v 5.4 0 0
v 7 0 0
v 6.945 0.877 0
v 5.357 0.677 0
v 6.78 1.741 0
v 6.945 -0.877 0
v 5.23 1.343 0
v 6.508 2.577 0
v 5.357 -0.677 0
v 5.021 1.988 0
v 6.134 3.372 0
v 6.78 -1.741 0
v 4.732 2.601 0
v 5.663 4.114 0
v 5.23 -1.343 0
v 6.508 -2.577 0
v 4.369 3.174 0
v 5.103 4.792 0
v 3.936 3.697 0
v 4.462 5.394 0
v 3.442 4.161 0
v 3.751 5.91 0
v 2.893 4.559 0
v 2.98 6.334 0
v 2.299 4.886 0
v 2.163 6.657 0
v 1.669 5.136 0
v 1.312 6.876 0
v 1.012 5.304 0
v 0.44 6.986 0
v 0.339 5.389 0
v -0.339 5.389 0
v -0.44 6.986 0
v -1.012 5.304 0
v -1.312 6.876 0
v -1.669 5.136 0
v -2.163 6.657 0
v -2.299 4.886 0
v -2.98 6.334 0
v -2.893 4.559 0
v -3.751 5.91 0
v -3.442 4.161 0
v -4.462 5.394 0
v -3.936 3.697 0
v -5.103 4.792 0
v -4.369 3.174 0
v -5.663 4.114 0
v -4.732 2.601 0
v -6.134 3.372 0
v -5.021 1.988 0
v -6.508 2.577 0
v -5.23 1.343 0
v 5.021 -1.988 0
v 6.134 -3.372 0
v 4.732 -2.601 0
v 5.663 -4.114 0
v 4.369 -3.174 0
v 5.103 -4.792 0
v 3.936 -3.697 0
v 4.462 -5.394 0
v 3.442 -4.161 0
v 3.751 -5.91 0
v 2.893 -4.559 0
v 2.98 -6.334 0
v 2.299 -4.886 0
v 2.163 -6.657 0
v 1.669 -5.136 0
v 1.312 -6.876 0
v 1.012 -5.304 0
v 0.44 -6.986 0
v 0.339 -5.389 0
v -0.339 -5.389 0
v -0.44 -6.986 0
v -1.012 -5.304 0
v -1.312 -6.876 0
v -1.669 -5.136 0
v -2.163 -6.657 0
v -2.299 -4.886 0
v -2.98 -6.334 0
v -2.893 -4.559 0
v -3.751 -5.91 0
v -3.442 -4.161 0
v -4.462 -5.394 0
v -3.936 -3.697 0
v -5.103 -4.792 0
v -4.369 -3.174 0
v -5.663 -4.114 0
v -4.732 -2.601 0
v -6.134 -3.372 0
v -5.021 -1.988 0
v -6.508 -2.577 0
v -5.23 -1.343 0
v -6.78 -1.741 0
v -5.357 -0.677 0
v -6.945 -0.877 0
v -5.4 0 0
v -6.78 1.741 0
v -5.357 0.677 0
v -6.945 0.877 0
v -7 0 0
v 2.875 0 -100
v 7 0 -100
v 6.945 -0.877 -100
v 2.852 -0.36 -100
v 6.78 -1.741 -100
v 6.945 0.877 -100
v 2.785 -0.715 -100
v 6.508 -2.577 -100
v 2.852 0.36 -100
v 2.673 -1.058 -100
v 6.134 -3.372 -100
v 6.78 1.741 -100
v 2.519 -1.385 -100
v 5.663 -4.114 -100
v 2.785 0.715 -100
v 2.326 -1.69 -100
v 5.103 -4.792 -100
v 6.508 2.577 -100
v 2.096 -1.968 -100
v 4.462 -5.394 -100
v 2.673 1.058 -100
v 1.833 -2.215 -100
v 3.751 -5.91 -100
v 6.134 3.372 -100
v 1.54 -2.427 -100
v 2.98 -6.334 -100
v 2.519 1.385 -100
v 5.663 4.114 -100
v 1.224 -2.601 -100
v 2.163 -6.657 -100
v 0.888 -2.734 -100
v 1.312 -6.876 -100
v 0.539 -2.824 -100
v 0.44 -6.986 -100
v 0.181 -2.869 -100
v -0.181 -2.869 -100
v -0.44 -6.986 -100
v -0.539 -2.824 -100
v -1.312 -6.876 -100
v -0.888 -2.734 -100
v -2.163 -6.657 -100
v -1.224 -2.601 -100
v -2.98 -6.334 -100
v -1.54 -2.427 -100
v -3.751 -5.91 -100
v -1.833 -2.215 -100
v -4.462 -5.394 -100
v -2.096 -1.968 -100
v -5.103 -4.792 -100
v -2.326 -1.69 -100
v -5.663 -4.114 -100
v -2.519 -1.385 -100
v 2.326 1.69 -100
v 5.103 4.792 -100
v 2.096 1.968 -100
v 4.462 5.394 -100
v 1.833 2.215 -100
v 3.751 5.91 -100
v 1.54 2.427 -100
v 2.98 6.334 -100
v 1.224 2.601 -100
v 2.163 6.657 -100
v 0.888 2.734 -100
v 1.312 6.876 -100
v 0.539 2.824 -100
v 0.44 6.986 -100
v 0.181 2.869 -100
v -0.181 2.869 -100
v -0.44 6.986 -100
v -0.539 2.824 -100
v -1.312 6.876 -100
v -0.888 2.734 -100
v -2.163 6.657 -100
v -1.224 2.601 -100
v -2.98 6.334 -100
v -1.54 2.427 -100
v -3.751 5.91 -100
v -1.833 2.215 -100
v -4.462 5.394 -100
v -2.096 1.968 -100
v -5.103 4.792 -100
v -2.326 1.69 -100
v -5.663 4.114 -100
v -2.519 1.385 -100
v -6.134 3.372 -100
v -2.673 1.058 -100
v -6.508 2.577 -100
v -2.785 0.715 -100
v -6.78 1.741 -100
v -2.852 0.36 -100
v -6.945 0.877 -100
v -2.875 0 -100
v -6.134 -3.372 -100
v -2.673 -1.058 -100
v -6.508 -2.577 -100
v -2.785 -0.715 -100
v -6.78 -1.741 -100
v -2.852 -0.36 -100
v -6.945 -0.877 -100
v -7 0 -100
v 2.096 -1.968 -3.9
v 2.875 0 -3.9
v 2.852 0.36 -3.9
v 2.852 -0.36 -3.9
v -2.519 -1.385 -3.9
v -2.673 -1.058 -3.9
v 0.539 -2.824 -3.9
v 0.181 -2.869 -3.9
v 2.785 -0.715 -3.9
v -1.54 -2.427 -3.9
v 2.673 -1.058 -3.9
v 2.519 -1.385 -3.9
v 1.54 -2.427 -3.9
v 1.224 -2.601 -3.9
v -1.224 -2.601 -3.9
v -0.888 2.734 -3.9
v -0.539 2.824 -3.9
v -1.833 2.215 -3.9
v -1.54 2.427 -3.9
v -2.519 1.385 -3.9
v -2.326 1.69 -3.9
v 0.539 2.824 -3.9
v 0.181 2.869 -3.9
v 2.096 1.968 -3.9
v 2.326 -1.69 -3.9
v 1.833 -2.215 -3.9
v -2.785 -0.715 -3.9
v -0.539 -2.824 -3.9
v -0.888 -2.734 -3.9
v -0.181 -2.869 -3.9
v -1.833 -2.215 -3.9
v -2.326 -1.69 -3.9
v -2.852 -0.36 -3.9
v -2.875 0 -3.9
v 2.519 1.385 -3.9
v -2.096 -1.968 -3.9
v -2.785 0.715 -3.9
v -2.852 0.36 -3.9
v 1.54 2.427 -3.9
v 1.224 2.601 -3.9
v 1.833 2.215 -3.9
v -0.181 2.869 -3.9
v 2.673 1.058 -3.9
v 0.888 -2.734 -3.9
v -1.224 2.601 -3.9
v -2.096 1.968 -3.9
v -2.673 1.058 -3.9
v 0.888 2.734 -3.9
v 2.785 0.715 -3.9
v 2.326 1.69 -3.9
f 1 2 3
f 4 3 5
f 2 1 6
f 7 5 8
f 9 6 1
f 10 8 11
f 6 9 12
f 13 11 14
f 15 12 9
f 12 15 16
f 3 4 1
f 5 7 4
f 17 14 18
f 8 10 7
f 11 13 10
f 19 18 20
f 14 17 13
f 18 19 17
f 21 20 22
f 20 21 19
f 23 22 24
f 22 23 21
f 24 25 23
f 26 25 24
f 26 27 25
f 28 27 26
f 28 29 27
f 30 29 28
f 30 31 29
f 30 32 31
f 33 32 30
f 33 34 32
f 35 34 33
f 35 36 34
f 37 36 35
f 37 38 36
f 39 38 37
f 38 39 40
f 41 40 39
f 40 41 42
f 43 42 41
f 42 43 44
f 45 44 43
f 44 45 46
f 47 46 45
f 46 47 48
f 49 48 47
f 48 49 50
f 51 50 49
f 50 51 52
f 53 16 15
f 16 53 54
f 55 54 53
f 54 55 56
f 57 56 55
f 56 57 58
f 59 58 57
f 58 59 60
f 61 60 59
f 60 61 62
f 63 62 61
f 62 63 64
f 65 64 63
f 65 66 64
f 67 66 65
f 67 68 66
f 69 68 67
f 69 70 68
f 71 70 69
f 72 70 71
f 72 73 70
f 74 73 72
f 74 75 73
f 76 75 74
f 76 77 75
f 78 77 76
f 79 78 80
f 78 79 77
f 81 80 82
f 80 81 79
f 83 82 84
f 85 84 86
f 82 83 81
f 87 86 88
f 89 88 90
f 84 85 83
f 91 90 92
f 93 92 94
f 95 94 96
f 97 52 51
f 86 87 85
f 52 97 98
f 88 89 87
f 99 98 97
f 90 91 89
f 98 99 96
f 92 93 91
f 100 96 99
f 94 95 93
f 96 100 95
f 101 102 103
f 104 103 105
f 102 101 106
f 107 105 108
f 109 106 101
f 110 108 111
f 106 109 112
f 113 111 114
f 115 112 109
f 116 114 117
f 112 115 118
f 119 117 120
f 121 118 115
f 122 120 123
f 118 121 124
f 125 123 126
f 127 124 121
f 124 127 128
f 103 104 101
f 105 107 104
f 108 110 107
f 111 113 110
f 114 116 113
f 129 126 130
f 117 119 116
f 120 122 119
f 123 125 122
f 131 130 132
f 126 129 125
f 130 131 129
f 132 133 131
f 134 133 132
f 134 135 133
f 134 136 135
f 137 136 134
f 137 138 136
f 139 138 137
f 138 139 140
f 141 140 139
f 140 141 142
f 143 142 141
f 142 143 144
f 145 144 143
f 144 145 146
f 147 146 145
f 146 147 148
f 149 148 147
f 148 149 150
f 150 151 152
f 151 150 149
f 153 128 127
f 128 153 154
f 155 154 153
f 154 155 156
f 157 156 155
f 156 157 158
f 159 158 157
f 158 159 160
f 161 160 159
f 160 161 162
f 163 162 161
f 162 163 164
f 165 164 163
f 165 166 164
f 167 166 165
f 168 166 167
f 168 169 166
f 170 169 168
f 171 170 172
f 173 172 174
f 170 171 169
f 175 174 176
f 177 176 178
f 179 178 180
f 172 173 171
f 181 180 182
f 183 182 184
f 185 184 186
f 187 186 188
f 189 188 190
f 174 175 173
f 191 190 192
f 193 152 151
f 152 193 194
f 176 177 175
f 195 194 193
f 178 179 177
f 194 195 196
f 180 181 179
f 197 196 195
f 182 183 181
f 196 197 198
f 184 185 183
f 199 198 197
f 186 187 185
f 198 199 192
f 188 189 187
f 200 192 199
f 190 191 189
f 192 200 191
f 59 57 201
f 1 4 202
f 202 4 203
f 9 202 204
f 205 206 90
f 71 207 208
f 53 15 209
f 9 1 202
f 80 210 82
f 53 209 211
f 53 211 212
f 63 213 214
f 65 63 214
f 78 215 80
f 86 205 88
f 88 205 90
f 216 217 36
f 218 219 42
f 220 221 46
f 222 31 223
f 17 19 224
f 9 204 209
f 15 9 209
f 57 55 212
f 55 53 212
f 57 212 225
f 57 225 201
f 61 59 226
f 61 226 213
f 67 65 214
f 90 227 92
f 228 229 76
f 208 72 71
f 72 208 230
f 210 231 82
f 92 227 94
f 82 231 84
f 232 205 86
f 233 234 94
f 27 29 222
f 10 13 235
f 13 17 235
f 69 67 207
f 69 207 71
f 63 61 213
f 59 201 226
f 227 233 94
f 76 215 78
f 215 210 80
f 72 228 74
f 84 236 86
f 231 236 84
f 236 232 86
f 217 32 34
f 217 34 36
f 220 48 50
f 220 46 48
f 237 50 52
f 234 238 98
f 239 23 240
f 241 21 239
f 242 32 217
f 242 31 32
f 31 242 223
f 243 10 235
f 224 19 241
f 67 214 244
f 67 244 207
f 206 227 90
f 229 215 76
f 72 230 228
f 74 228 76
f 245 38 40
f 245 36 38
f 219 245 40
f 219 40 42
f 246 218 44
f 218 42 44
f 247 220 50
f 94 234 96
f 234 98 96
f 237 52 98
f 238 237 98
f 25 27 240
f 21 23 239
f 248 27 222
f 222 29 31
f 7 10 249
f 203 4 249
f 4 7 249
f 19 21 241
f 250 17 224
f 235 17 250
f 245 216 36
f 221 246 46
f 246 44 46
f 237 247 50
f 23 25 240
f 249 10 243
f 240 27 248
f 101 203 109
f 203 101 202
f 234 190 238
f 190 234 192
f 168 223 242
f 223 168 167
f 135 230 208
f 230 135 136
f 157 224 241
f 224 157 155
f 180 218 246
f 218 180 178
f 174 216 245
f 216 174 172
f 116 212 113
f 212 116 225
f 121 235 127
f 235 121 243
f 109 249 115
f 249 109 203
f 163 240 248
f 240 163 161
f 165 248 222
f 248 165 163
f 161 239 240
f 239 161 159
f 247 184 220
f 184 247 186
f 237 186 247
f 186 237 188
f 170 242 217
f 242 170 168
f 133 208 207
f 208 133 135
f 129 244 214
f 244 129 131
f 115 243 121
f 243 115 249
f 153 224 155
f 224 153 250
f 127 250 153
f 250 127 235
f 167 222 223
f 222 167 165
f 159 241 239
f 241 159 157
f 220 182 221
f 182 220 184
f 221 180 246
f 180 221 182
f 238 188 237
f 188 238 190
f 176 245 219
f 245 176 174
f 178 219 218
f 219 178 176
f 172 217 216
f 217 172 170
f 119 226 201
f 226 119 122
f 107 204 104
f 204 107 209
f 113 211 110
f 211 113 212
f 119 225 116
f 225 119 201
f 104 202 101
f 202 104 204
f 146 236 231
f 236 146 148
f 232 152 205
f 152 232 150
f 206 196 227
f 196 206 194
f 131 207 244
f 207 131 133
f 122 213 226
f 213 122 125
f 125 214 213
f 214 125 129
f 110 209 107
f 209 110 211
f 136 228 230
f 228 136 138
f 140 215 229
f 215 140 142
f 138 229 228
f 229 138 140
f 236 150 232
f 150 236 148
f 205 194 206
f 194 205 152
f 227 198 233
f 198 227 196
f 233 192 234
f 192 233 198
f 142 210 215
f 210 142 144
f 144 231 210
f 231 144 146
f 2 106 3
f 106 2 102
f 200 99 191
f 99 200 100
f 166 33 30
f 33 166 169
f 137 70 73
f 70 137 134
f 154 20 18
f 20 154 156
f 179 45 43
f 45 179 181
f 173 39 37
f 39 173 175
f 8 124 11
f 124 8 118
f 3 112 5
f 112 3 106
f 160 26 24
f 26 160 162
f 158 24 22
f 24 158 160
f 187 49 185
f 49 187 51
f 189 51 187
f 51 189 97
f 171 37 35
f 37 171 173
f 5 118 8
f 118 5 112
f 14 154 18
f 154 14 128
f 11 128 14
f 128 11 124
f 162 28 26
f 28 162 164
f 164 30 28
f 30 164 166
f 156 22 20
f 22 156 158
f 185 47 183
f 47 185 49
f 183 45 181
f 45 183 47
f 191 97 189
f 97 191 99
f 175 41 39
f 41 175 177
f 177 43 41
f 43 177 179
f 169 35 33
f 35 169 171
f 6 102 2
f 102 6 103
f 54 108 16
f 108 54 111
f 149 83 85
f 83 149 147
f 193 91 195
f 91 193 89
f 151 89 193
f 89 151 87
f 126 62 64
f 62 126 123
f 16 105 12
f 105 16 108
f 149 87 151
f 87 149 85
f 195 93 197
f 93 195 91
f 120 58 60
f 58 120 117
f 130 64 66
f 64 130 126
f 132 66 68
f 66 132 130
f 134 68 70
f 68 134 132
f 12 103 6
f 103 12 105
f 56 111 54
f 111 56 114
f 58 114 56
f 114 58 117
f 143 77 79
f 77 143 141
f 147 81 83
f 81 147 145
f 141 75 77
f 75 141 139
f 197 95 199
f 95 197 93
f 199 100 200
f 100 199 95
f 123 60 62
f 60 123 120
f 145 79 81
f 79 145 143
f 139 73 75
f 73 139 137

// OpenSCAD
$fn = 50;


difference() {
	union() {
		translate(v = [0, 0, -100.0000000000]) {
			cylinder(h = 100, r = 7.0000000000);
		}
		cylinder(h = 0, r = 10.0000000000);
	}
	union() {
		translate(v = [0, 0, 0]) {
			rotate(a = [0, 0, 0]) {
				difference() {
					union() {
						#translate(v = [0, 0, -100.0000000000]) {
							cylinder(h = 100, r = 2.6000000000);
						}
						#translate(v = [0, 0, -3.9000000000]) {
							cylinder(h = 3.9000000000, r = 7.0000000000, r1 = 2.8750000000, r2 = 5.4000000000);
						}
						#translate(v = [0, 0, -100.0000000000]) {
							cylinder(h = 100, r = 2.8750000000);
						}
						#translate(v = [0, 0, -100.0000000000]) {
							cylinder(h = 100, r = 2.6000000000);
						}
					}
					union();
				}
			}
		}
	}
}
